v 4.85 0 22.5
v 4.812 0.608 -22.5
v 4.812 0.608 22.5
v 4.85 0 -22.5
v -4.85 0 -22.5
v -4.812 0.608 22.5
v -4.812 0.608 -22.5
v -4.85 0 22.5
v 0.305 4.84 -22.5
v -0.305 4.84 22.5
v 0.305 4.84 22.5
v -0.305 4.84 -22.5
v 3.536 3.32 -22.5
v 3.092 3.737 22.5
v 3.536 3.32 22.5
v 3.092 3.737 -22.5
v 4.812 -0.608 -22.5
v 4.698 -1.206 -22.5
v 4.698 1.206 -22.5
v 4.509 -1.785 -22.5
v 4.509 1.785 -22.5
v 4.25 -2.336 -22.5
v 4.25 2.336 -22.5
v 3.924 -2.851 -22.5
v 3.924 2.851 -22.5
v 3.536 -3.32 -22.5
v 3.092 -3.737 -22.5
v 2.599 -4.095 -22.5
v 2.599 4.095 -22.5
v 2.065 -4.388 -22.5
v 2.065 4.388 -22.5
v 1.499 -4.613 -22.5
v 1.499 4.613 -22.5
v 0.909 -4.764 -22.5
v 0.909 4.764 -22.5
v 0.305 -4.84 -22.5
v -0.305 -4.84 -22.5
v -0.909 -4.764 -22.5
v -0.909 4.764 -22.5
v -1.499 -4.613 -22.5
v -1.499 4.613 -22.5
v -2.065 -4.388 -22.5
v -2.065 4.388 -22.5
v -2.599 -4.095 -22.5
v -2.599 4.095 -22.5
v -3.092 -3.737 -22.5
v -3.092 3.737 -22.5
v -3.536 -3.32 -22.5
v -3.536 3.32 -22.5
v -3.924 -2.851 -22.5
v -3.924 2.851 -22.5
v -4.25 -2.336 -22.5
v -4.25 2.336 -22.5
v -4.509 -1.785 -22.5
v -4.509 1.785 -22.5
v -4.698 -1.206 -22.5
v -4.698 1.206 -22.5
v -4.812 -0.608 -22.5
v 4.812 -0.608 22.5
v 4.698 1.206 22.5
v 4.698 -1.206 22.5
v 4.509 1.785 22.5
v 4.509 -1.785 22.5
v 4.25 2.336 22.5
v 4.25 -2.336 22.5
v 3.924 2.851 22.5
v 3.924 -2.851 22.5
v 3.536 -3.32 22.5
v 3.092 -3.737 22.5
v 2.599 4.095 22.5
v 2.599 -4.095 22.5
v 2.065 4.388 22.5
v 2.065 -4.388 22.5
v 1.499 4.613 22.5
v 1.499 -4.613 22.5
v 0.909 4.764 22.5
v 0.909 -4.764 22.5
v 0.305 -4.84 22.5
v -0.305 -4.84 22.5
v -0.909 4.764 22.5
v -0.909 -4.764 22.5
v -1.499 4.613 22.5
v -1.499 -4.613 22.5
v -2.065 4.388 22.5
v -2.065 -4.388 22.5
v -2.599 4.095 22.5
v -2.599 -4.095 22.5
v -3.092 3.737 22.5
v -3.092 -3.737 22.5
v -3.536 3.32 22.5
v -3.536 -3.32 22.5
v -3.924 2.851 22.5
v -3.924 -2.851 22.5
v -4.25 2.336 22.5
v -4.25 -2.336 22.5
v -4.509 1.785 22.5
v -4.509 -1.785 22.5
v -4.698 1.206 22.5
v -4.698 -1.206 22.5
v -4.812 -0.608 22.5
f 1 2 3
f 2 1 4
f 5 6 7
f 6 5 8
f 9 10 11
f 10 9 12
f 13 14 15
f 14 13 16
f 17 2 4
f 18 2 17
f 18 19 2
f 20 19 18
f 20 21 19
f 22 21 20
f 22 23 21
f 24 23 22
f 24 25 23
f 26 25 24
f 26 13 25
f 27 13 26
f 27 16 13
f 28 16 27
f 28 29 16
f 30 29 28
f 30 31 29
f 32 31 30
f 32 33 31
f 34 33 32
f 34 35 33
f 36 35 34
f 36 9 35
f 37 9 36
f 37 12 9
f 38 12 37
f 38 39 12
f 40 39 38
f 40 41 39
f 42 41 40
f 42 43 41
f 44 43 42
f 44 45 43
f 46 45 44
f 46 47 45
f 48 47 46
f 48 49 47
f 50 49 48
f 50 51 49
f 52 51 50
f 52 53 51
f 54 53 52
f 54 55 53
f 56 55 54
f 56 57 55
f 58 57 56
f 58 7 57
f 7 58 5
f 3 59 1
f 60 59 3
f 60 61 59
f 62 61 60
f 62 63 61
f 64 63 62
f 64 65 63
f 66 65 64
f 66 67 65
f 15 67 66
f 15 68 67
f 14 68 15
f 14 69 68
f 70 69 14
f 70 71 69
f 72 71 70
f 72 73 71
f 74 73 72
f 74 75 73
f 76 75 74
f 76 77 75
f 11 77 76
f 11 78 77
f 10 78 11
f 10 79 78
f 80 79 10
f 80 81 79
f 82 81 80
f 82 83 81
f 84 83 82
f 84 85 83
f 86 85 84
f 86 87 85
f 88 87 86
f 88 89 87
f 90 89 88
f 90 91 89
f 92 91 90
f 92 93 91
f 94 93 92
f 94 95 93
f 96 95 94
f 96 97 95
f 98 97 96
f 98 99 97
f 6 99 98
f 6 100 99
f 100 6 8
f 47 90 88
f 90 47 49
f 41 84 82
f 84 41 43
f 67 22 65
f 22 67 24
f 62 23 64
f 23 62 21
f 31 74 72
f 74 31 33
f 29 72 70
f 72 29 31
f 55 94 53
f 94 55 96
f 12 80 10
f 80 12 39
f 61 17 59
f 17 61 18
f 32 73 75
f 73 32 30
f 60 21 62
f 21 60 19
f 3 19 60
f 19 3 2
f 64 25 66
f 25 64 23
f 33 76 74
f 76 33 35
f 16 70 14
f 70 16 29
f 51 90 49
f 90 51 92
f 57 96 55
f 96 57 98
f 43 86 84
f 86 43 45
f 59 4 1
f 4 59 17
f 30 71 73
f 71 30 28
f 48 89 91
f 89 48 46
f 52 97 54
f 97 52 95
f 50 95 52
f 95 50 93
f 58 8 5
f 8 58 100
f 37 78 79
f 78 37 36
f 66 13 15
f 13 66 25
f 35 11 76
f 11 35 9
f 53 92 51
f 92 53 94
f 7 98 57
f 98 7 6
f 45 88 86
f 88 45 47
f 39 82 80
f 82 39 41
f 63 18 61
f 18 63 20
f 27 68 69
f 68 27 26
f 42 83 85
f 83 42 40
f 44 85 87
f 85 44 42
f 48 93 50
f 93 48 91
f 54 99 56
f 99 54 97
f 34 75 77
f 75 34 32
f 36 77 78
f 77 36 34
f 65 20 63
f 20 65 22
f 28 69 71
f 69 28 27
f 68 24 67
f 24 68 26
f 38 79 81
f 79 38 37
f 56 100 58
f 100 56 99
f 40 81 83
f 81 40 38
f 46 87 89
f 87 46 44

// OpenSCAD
$fn = 50;


difference() {
	union() {
		translate(v = [0, 0, -22.5000000000]) {
			cylinder(h = 45, r = 4.8500000000);
		}
	}
	union() {
		translate(v = [0, 0, -100.0000000000]) {
			cylinder(h = 200, r = 0);
		}
	}
}
